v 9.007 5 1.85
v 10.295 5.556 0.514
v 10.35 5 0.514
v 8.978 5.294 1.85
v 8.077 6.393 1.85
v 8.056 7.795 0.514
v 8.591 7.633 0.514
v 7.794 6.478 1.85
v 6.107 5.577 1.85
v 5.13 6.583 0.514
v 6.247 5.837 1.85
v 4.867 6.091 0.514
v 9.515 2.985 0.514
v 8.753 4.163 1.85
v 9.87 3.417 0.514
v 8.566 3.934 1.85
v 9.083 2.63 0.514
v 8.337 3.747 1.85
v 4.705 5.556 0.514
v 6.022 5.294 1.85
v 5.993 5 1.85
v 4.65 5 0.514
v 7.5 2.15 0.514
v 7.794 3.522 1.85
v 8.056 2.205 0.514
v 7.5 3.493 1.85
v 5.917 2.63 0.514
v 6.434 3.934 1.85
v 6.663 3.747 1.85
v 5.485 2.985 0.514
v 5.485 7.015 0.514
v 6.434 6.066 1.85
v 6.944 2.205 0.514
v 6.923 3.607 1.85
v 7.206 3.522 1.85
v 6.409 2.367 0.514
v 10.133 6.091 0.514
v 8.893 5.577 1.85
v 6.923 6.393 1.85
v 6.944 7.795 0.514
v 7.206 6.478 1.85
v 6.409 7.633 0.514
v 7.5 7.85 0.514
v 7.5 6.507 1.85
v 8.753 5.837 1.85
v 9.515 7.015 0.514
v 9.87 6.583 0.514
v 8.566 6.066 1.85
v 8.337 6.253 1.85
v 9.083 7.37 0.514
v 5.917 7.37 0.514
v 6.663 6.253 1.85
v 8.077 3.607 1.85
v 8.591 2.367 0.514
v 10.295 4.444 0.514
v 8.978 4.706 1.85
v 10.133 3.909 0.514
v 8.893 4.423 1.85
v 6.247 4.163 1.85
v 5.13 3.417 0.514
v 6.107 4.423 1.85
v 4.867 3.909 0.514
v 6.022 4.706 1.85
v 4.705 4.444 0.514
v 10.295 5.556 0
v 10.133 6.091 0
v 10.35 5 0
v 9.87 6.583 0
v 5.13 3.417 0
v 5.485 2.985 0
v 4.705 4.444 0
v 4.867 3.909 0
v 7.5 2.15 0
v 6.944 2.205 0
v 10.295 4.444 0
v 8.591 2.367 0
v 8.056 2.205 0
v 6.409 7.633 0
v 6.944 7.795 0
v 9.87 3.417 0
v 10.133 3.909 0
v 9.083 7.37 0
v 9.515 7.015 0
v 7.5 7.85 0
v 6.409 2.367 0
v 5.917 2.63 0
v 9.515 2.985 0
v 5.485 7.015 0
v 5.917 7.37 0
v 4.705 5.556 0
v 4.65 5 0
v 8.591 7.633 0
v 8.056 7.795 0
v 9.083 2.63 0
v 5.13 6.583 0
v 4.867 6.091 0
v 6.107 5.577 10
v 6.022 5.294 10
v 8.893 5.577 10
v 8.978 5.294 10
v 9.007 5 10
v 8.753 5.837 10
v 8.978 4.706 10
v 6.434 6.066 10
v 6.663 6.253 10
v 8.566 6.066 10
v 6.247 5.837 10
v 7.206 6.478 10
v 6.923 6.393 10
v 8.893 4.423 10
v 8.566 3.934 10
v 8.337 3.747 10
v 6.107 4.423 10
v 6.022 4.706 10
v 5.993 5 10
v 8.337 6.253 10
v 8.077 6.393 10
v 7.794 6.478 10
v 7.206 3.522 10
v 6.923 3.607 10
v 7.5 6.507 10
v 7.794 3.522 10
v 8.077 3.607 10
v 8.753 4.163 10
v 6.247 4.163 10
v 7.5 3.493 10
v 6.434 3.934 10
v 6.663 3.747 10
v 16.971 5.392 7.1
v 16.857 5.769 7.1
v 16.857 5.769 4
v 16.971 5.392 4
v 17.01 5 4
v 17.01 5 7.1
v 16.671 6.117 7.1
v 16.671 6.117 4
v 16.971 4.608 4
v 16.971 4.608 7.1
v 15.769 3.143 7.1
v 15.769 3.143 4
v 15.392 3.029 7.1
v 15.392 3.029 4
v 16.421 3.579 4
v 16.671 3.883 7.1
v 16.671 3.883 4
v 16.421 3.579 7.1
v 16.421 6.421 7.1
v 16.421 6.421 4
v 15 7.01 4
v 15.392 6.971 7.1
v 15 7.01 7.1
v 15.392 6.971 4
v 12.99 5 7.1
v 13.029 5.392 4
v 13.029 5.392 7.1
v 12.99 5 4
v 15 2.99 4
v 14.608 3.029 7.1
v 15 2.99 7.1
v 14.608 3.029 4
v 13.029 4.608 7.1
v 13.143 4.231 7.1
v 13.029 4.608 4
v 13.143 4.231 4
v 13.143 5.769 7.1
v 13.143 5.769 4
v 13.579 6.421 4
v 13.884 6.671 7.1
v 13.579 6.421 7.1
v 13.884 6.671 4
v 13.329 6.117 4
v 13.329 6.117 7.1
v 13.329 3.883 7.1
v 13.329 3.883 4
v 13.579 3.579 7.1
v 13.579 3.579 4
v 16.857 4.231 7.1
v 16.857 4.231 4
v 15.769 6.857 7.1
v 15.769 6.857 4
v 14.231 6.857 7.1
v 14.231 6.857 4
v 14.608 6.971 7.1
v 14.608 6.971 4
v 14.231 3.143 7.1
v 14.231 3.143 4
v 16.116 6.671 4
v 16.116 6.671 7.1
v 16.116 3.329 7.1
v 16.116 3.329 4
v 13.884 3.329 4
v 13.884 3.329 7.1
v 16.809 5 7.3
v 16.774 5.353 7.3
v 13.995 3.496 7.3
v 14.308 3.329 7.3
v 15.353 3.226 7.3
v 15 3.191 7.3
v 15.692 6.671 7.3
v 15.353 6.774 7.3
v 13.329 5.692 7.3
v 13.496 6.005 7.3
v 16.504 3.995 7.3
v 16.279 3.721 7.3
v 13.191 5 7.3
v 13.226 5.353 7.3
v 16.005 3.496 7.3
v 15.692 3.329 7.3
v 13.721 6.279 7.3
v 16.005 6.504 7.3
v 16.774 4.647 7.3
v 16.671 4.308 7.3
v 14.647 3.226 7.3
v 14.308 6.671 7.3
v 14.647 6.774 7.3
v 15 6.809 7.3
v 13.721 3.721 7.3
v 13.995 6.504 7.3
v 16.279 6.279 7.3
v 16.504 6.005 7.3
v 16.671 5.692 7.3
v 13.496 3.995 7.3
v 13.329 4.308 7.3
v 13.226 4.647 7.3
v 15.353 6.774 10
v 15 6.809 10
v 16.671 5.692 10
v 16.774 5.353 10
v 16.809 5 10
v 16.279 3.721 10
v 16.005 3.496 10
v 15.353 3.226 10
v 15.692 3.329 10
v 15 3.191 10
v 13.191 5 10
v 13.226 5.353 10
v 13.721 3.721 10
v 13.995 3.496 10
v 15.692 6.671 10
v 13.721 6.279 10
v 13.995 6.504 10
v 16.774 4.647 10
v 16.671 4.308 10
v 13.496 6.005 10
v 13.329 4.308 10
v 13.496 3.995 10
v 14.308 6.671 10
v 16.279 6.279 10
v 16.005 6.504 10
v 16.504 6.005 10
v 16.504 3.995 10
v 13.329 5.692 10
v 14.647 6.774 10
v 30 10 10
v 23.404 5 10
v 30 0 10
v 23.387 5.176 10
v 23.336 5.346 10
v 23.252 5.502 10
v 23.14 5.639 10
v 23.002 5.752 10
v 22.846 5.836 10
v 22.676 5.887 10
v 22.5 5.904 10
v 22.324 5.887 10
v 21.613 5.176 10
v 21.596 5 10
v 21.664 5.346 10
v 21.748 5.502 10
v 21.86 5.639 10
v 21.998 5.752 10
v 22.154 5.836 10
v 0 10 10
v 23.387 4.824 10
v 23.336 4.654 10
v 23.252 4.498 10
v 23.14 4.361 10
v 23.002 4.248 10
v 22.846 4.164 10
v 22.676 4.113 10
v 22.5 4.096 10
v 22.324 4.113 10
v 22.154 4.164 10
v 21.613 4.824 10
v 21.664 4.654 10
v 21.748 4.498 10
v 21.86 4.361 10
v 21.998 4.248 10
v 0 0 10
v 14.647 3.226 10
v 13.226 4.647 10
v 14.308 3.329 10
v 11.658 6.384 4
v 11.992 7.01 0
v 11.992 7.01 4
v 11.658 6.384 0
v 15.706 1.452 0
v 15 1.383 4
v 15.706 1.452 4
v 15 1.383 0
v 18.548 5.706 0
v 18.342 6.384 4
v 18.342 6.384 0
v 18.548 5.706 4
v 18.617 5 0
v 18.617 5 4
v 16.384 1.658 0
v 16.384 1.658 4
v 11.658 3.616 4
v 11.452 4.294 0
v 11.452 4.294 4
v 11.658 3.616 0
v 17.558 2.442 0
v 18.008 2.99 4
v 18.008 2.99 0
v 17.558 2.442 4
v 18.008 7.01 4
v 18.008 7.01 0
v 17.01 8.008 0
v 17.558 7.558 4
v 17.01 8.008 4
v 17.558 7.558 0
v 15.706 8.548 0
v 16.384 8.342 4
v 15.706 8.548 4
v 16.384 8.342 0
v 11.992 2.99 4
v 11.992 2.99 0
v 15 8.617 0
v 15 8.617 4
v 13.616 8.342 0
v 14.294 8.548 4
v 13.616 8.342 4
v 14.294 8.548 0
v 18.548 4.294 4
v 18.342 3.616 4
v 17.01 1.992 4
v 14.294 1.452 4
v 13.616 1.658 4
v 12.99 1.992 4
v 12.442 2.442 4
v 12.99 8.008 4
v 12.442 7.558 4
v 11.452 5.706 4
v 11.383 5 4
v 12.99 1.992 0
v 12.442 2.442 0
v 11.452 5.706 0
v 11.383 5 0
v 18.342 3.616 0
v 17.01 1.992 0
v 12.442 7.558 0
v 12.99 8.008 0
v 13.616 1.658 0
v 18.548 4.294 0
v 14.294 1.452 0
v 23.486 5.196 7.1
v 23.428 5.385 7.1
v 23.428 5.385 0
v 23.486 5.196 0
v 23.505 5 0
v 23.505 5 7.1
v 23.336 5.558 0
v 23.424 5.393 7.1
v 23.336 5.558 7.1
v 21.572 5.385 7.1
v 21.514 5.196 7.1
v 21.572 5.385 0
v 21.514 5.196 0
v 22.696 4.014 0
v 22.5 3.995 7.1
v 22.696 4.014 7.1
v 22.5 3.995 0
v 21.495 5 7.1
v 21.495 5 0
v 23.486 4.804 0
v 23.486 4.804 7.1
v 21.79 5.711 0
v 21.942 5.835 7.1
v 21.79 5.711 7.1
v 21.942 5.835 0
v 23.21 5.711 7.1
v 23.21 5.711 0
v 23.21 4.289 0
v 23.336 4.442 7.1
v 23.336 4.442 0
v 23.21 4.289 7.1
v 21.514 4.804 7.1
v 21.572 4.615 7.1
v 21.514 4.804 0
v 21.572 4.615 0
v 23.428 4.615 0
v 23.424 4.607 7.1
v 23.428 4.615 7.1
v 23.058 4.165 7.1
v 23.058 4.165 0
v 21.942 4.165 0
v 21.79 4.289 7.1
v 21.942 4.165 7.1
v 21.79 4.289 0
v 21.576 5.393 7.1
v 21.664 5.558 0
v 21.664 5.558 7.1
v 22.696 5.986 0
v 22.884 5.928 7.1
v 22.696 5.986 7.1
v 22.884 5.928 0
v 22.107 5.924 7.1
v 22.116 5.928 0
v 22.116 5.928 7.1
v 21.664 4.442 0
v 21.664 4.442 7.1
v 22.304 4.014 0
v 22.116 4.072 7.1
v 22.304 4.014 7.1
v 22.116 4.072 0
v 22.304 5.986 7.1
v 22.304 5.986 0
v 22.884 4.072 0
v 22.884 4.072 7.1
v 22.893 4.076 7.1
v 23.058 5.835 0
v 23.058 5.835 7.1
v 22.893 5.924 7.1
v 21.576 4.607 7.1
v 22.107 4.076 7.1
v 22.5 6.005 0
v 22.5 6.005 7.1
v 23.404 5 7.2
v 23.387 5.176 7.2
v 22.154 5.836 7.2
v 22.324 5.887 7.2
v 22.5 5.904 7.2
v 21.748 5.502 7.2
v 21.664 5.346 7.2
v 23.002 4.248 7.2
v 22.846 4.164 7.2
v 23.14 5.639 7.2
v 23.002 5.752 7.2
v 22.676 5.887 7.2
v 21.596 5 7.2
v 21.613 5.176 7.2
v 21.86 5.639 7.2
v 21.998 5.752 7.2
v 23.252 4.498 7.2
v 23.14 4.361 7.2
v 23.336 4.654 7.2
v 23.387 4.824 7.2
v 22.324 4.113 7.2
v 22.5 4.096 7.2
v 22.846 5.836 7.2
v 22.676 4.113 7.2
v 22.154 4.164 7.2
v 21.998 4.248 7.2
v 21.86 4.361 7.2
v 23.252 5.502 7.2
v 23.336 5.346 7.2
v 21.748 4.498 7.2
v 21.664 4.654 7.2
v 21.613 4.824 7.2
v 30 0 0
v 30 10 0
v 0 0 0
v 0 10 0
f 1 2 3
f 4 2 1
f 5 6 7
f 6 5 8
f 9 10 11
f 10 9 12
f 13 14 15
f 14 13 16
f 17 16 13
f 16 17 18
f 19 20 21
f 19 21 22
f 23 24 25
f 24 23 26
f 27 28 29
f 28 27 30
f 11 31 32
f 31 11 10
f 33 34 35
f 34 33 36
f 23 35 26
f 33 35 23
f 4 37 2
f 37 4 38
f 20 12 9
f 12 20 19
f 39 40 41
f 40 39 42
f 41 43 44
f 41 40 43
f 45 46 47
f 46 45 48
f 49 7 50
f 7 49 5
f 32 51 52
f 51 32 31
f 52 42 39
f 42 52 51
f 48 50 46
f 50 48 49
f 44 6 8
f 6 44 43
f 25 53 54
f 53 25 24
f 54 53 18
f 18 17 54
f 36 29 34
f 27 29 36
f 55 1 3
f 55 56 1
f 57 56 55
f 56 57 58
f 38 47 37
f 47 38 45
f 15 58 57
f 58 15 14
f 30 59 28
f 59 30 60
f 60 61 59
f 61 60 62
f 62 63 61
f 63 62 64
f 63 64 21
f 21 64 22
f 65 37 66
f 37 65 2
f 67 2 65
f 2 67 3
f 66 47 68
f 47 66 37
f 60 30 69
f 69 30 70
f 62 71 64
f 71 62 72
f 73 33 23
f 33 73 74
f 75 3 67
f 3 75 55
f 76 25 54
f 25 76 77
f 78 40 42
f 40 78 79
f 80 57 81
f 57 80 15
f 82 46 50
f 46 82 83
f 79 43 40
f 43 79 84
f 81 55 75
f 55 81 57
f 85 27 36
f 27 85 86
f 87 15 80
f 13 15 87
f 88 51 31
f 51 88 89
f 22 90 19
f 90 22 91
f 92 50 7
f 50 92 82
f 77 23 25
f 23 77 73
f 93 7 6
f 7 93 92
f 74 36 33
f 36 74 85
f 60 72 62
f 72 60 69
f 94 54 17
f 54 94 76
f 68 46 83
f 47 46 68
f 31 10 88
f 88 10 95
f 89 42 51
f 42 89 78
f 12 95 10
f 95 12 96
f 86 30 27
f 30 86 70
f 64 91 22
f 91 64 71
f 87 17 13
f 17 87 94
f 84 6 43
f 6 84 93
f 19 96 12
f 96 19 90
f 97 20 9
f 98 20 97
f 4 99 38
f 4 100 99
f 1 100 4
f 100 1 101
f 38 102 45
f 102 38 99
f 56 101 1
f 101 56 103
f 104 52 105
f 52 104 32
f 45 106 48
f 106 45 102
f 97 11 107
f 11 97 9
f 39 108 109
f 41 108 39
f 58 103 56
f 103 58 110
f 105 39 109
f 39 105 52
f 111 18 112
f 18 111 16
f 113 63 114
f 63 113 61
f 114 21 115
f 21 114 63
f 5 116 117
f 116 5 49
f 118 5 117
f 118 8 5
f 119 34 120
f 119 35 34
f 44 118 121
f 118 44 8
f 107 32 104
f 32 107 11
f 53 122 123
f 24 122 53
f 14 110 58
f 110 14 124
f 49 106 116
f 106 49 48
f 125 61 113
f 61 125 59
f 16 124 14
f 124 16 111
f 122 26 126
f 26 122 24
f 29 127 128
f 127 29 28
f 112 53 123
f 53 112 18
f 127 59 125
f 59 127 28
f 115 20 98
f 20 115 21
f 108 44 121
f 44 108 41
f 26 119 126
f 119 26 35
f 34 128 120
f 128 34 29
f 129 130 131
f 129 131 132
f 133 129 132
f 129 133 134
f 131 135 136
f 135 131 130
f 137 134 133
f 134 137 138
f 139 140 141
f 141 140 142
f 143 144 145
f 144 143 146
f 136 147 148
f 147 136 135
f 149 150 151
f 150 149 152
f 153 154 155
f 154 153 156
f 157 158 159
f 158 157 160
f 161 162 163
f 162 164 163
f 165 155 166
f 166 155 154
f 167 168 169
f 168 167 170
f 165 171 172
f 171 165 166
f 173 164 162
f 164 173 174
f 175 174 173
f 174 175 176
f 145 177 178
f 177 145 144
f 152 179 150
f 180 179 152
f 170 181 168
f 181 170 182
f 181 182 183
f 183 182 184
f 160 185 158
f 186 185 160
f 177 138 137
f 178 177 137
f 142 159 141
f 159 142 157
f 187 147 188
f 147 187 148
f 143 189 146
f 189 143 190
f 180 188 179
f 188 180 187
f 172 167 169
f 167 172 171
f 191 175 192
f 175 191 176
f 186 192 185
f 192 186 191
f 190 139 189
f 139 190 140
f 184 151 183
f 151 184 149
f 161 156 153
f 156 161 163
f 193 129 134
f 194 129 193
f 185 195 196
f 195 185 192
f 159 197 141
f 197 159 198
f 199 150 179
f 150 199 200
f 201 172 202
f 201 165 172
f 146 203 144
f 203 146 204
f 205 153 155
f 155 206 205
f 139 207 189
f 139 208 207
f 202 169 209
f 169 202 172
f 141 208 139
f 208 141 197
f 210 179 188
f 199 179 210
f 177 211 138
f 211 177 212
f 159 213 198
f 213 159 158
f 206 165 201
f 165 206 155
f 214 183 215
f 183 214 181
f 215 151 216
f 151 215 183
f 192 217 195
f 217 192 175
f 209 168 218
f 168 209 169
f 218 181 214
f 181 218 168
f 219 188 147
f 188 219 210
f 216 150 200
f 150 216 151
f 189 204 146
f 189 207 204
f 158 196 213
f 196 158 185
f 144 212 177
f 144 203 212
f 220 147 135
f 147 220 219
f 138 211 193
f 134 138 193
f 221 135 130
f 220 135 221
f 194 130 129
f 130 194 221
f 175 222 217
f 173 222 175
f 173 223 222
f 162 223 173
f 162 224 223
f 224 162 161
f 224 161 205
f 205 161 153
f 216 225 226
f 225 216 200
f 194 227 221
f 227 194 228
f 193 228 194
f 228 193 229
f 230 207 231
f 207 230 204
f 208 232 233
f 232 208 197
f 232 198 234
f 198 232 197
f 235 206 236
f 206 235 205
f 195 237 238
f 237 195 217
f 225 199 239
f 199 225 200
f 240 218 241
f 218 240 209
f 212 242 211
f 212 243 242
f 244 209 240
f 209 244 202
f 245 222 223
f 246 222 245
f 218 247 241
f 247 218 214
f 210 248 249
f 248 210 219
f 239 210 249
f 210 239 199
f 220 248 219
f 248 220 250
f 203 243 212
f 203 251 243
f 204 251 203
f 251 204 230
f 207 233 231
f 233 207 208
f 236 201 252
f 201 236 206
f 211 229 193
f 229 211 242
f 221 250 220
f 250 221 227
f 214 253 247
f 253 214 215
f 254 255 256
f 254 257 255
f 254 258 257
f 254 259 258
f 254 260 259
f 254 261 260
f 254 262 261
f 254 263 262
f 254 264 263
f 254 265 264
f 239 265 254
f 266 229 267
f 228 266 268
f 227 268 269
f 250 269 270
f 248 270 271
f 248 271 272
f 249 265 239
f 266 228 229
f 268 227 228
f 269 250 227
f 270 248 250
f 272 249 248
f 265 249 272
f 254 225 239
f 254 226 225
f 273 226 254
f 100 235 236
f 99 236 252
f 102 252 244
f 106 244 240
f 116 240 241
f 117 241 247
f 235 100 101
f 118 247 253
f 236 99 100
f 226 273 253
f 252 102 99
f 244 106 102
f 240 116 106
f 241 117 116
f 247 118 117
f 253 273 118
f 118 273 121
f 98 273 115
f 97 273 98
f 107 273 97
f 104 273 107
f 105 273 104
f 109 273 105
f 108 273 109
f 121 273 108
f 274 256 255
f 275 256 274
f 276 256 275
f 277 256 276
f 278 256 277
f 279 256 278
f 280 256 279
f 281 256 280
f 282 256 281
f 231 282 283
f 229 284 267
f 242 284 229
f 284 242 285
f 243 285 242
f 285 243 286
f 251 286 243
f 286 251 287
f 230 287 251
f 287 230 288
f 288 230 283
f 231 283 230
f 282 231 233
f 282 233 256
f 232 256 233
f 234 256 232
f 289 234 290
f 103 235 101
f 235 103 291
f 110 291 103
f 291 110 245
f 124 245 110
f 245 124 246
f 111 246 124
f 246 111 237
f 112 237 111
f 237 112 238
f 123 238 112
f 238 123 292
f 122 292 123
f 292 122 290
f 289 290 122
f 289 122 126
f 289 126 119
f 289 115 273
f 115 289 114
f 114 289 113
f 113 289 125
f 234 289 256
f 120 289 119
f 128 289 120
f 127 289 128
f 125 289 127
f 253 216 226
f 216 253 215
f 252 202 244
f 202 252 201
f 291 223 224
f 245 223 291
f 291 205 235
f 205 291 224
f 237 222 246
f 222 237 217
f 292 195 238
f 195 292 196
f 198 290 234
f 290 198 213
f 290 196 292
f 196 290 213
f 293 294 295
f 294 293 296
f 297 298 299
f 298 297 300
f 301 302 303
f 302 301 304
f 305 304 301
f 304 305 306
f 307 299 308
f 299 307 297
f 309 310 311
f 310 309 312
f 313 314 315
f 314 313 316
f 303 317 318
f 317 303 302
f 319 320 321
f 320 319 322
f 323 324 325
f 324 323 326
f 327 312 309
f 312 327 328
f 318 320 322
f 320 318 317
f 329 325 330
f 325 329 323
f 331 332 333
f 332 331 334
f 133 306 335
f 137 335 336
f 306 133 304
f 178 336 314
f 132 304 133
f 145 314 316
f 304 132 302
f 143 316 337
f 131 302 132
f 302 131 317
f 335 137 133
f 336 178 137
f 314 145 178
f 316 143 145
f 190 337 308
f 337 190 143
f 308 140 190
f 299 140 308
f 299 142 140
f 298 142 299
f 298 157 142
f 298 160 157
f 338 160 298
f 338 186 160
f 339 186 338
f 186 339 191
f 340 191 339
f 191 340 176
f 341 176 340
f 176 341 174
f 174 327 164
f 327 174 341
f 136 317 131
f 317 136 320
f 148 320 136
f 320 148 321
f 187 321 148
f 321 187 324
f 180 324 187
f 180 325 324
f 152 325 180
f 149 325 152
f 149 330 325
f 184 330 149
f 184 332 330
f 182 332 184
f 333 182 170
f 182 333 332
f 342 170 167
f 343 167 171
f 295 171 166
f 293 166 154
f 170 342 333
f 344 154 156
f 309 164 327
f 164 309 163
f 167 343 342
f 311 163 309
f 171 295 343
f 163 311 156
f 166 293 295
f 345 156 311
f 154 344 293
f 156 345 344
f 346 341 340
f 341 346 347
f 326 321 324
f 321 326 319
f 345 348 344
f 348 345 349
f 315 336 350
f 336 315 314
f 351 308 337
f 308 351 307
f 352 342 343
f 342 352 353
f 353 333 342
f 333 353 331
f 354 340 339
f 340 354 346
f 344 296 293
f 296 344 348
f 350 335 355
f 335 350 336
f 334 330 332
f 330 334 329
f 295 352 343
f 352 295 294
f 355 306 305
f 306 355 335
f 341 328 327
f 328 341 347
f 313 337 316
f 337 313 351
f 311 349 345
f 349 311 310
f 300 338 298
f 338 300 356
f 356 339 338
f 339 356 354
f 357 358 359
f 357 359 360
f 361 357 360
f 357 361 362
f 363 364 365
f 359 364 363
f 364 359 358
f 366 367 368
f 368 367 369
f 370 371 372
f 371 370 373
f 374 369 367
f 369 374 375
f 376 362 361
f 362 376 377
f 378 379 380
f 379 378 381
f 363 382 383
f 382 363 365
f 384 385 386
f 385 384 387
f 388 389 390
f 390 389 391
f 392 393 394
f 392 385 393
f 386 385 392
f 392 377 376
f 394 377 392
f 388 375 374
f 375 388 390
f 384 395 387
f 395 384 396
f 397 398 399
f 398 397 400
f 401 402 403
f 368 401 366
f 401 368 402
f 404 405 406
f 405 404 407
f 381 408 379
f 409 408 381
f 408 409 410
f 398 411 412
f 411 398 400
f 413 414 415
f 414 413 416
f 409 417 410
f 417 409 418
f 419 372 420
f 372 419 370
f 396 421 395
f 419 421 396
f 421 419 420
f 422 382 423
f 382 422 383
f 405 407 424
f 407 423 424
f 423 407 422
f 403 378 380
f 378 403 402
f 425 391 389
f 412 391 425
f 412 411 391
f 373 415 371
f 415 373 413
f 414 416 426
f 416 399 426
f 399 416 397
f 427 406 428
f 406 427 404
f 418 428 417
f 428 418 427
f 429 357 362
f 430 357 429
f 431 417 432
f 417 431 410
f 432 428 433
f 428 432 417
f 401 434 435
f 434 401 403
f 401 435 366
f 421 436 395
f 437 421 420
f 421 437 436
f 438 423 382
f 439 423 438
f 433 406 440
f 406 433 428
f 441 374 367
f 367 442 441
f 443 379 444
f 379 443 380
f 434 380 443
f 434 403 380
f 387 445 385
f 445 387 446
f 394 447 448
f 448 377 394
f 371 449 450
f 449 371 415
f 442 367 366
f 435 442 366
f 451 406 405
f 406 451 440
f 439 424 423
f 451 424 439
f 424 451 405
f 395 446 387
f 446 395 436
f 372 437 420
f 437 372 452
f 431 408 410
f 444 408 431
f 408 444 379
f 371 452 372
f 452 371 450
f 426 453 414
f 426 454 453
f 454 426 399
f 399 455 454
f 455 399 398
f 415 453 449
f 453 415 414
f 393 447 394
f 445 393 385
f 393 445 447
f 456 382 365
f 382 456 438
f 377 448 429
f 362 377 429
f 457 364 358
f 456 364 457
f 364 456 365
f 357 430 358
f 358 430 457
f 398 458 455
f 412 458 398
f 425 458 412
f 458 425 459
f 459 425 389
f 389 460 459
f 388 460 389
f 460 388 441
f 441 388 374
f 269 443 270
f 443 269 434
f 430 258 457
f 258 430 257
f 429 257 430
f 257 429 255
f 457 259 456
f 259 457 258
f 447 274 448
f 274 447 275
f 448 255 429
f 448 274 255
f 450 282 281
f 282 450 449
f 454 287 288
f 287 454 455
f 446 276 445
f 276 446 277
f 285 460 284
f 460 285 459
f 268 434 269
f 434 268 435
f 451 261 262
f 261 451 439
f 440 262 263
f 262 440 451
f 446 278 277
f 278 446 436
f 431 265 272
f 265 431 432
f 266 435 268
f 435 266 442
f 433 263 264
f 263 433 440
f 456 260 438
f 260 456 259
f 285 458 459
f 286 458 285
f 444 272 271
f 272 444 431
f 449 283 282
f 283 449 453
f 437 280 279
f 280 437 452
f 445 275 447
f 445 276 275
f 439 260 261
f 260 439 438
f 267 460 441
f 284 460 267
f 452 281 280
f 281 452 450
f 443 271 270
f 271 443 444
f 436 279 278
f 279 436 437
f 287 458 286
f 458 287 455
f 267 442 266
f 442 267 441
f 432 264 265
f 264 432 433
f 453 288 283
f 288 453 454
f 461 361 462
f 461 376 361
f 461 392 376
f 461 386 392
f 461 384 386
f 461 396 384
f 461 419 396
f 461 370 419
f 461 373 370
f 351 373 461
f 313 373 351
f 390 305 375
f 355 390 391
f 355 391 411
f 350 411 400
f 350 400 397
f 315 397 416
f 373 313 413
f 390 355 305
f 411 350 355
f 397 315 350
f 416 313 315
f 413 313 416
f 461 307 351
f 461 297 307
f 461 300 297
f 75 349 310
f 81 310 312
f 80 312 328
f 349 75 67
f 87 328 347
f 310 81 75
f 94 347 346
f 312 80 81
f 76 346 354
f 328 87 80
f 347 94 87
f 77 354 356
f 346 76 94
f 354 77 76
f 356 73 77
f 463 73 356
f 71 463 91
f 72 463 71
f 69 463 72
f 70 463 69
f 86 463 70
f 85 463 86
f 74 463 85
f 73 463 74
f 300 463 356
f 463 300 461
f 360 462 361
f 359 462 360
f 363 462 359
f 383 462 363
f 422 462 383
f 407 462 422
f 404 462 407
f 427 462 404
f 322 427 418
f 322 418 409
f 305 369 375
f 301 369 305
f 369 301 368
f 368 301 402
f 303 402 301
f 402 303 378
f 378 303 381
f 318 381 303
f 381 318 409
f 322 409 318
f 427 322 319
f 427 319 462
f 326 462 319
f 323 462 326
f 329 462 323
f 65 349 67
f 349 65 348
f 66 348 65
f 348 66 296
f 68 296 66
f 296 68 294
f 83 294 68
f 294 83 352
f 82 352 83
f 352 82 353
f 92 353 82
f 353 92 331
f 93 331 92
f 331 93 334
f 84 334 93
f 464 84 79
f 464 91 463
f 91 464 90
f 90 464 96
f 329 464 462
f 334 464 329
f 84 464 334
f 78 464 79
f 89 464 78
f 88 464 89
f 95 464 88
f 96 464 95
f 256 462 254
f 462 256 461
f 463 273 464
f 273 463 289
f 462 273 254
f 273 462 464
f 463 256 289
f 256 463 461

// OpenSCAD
include<screw_holes.scad>

object_length = 30;
object_depth = 10;
object_height = 10;


difference() {
    cube([object_length, object_depth, object_height]);
    translate([object_length/4, object_depth/2, 0]) screw_hole(DIN34811, M3, object_height);
    translate([object_length/4 * 2, object_depth/2, 0]) screw_hole(ISO4762, M4, object_height, 3);
    translate([object_length/4 * 3, object_depth/2, 0]) screw_hole(ISO10642, M2, object_height, 3);
}
